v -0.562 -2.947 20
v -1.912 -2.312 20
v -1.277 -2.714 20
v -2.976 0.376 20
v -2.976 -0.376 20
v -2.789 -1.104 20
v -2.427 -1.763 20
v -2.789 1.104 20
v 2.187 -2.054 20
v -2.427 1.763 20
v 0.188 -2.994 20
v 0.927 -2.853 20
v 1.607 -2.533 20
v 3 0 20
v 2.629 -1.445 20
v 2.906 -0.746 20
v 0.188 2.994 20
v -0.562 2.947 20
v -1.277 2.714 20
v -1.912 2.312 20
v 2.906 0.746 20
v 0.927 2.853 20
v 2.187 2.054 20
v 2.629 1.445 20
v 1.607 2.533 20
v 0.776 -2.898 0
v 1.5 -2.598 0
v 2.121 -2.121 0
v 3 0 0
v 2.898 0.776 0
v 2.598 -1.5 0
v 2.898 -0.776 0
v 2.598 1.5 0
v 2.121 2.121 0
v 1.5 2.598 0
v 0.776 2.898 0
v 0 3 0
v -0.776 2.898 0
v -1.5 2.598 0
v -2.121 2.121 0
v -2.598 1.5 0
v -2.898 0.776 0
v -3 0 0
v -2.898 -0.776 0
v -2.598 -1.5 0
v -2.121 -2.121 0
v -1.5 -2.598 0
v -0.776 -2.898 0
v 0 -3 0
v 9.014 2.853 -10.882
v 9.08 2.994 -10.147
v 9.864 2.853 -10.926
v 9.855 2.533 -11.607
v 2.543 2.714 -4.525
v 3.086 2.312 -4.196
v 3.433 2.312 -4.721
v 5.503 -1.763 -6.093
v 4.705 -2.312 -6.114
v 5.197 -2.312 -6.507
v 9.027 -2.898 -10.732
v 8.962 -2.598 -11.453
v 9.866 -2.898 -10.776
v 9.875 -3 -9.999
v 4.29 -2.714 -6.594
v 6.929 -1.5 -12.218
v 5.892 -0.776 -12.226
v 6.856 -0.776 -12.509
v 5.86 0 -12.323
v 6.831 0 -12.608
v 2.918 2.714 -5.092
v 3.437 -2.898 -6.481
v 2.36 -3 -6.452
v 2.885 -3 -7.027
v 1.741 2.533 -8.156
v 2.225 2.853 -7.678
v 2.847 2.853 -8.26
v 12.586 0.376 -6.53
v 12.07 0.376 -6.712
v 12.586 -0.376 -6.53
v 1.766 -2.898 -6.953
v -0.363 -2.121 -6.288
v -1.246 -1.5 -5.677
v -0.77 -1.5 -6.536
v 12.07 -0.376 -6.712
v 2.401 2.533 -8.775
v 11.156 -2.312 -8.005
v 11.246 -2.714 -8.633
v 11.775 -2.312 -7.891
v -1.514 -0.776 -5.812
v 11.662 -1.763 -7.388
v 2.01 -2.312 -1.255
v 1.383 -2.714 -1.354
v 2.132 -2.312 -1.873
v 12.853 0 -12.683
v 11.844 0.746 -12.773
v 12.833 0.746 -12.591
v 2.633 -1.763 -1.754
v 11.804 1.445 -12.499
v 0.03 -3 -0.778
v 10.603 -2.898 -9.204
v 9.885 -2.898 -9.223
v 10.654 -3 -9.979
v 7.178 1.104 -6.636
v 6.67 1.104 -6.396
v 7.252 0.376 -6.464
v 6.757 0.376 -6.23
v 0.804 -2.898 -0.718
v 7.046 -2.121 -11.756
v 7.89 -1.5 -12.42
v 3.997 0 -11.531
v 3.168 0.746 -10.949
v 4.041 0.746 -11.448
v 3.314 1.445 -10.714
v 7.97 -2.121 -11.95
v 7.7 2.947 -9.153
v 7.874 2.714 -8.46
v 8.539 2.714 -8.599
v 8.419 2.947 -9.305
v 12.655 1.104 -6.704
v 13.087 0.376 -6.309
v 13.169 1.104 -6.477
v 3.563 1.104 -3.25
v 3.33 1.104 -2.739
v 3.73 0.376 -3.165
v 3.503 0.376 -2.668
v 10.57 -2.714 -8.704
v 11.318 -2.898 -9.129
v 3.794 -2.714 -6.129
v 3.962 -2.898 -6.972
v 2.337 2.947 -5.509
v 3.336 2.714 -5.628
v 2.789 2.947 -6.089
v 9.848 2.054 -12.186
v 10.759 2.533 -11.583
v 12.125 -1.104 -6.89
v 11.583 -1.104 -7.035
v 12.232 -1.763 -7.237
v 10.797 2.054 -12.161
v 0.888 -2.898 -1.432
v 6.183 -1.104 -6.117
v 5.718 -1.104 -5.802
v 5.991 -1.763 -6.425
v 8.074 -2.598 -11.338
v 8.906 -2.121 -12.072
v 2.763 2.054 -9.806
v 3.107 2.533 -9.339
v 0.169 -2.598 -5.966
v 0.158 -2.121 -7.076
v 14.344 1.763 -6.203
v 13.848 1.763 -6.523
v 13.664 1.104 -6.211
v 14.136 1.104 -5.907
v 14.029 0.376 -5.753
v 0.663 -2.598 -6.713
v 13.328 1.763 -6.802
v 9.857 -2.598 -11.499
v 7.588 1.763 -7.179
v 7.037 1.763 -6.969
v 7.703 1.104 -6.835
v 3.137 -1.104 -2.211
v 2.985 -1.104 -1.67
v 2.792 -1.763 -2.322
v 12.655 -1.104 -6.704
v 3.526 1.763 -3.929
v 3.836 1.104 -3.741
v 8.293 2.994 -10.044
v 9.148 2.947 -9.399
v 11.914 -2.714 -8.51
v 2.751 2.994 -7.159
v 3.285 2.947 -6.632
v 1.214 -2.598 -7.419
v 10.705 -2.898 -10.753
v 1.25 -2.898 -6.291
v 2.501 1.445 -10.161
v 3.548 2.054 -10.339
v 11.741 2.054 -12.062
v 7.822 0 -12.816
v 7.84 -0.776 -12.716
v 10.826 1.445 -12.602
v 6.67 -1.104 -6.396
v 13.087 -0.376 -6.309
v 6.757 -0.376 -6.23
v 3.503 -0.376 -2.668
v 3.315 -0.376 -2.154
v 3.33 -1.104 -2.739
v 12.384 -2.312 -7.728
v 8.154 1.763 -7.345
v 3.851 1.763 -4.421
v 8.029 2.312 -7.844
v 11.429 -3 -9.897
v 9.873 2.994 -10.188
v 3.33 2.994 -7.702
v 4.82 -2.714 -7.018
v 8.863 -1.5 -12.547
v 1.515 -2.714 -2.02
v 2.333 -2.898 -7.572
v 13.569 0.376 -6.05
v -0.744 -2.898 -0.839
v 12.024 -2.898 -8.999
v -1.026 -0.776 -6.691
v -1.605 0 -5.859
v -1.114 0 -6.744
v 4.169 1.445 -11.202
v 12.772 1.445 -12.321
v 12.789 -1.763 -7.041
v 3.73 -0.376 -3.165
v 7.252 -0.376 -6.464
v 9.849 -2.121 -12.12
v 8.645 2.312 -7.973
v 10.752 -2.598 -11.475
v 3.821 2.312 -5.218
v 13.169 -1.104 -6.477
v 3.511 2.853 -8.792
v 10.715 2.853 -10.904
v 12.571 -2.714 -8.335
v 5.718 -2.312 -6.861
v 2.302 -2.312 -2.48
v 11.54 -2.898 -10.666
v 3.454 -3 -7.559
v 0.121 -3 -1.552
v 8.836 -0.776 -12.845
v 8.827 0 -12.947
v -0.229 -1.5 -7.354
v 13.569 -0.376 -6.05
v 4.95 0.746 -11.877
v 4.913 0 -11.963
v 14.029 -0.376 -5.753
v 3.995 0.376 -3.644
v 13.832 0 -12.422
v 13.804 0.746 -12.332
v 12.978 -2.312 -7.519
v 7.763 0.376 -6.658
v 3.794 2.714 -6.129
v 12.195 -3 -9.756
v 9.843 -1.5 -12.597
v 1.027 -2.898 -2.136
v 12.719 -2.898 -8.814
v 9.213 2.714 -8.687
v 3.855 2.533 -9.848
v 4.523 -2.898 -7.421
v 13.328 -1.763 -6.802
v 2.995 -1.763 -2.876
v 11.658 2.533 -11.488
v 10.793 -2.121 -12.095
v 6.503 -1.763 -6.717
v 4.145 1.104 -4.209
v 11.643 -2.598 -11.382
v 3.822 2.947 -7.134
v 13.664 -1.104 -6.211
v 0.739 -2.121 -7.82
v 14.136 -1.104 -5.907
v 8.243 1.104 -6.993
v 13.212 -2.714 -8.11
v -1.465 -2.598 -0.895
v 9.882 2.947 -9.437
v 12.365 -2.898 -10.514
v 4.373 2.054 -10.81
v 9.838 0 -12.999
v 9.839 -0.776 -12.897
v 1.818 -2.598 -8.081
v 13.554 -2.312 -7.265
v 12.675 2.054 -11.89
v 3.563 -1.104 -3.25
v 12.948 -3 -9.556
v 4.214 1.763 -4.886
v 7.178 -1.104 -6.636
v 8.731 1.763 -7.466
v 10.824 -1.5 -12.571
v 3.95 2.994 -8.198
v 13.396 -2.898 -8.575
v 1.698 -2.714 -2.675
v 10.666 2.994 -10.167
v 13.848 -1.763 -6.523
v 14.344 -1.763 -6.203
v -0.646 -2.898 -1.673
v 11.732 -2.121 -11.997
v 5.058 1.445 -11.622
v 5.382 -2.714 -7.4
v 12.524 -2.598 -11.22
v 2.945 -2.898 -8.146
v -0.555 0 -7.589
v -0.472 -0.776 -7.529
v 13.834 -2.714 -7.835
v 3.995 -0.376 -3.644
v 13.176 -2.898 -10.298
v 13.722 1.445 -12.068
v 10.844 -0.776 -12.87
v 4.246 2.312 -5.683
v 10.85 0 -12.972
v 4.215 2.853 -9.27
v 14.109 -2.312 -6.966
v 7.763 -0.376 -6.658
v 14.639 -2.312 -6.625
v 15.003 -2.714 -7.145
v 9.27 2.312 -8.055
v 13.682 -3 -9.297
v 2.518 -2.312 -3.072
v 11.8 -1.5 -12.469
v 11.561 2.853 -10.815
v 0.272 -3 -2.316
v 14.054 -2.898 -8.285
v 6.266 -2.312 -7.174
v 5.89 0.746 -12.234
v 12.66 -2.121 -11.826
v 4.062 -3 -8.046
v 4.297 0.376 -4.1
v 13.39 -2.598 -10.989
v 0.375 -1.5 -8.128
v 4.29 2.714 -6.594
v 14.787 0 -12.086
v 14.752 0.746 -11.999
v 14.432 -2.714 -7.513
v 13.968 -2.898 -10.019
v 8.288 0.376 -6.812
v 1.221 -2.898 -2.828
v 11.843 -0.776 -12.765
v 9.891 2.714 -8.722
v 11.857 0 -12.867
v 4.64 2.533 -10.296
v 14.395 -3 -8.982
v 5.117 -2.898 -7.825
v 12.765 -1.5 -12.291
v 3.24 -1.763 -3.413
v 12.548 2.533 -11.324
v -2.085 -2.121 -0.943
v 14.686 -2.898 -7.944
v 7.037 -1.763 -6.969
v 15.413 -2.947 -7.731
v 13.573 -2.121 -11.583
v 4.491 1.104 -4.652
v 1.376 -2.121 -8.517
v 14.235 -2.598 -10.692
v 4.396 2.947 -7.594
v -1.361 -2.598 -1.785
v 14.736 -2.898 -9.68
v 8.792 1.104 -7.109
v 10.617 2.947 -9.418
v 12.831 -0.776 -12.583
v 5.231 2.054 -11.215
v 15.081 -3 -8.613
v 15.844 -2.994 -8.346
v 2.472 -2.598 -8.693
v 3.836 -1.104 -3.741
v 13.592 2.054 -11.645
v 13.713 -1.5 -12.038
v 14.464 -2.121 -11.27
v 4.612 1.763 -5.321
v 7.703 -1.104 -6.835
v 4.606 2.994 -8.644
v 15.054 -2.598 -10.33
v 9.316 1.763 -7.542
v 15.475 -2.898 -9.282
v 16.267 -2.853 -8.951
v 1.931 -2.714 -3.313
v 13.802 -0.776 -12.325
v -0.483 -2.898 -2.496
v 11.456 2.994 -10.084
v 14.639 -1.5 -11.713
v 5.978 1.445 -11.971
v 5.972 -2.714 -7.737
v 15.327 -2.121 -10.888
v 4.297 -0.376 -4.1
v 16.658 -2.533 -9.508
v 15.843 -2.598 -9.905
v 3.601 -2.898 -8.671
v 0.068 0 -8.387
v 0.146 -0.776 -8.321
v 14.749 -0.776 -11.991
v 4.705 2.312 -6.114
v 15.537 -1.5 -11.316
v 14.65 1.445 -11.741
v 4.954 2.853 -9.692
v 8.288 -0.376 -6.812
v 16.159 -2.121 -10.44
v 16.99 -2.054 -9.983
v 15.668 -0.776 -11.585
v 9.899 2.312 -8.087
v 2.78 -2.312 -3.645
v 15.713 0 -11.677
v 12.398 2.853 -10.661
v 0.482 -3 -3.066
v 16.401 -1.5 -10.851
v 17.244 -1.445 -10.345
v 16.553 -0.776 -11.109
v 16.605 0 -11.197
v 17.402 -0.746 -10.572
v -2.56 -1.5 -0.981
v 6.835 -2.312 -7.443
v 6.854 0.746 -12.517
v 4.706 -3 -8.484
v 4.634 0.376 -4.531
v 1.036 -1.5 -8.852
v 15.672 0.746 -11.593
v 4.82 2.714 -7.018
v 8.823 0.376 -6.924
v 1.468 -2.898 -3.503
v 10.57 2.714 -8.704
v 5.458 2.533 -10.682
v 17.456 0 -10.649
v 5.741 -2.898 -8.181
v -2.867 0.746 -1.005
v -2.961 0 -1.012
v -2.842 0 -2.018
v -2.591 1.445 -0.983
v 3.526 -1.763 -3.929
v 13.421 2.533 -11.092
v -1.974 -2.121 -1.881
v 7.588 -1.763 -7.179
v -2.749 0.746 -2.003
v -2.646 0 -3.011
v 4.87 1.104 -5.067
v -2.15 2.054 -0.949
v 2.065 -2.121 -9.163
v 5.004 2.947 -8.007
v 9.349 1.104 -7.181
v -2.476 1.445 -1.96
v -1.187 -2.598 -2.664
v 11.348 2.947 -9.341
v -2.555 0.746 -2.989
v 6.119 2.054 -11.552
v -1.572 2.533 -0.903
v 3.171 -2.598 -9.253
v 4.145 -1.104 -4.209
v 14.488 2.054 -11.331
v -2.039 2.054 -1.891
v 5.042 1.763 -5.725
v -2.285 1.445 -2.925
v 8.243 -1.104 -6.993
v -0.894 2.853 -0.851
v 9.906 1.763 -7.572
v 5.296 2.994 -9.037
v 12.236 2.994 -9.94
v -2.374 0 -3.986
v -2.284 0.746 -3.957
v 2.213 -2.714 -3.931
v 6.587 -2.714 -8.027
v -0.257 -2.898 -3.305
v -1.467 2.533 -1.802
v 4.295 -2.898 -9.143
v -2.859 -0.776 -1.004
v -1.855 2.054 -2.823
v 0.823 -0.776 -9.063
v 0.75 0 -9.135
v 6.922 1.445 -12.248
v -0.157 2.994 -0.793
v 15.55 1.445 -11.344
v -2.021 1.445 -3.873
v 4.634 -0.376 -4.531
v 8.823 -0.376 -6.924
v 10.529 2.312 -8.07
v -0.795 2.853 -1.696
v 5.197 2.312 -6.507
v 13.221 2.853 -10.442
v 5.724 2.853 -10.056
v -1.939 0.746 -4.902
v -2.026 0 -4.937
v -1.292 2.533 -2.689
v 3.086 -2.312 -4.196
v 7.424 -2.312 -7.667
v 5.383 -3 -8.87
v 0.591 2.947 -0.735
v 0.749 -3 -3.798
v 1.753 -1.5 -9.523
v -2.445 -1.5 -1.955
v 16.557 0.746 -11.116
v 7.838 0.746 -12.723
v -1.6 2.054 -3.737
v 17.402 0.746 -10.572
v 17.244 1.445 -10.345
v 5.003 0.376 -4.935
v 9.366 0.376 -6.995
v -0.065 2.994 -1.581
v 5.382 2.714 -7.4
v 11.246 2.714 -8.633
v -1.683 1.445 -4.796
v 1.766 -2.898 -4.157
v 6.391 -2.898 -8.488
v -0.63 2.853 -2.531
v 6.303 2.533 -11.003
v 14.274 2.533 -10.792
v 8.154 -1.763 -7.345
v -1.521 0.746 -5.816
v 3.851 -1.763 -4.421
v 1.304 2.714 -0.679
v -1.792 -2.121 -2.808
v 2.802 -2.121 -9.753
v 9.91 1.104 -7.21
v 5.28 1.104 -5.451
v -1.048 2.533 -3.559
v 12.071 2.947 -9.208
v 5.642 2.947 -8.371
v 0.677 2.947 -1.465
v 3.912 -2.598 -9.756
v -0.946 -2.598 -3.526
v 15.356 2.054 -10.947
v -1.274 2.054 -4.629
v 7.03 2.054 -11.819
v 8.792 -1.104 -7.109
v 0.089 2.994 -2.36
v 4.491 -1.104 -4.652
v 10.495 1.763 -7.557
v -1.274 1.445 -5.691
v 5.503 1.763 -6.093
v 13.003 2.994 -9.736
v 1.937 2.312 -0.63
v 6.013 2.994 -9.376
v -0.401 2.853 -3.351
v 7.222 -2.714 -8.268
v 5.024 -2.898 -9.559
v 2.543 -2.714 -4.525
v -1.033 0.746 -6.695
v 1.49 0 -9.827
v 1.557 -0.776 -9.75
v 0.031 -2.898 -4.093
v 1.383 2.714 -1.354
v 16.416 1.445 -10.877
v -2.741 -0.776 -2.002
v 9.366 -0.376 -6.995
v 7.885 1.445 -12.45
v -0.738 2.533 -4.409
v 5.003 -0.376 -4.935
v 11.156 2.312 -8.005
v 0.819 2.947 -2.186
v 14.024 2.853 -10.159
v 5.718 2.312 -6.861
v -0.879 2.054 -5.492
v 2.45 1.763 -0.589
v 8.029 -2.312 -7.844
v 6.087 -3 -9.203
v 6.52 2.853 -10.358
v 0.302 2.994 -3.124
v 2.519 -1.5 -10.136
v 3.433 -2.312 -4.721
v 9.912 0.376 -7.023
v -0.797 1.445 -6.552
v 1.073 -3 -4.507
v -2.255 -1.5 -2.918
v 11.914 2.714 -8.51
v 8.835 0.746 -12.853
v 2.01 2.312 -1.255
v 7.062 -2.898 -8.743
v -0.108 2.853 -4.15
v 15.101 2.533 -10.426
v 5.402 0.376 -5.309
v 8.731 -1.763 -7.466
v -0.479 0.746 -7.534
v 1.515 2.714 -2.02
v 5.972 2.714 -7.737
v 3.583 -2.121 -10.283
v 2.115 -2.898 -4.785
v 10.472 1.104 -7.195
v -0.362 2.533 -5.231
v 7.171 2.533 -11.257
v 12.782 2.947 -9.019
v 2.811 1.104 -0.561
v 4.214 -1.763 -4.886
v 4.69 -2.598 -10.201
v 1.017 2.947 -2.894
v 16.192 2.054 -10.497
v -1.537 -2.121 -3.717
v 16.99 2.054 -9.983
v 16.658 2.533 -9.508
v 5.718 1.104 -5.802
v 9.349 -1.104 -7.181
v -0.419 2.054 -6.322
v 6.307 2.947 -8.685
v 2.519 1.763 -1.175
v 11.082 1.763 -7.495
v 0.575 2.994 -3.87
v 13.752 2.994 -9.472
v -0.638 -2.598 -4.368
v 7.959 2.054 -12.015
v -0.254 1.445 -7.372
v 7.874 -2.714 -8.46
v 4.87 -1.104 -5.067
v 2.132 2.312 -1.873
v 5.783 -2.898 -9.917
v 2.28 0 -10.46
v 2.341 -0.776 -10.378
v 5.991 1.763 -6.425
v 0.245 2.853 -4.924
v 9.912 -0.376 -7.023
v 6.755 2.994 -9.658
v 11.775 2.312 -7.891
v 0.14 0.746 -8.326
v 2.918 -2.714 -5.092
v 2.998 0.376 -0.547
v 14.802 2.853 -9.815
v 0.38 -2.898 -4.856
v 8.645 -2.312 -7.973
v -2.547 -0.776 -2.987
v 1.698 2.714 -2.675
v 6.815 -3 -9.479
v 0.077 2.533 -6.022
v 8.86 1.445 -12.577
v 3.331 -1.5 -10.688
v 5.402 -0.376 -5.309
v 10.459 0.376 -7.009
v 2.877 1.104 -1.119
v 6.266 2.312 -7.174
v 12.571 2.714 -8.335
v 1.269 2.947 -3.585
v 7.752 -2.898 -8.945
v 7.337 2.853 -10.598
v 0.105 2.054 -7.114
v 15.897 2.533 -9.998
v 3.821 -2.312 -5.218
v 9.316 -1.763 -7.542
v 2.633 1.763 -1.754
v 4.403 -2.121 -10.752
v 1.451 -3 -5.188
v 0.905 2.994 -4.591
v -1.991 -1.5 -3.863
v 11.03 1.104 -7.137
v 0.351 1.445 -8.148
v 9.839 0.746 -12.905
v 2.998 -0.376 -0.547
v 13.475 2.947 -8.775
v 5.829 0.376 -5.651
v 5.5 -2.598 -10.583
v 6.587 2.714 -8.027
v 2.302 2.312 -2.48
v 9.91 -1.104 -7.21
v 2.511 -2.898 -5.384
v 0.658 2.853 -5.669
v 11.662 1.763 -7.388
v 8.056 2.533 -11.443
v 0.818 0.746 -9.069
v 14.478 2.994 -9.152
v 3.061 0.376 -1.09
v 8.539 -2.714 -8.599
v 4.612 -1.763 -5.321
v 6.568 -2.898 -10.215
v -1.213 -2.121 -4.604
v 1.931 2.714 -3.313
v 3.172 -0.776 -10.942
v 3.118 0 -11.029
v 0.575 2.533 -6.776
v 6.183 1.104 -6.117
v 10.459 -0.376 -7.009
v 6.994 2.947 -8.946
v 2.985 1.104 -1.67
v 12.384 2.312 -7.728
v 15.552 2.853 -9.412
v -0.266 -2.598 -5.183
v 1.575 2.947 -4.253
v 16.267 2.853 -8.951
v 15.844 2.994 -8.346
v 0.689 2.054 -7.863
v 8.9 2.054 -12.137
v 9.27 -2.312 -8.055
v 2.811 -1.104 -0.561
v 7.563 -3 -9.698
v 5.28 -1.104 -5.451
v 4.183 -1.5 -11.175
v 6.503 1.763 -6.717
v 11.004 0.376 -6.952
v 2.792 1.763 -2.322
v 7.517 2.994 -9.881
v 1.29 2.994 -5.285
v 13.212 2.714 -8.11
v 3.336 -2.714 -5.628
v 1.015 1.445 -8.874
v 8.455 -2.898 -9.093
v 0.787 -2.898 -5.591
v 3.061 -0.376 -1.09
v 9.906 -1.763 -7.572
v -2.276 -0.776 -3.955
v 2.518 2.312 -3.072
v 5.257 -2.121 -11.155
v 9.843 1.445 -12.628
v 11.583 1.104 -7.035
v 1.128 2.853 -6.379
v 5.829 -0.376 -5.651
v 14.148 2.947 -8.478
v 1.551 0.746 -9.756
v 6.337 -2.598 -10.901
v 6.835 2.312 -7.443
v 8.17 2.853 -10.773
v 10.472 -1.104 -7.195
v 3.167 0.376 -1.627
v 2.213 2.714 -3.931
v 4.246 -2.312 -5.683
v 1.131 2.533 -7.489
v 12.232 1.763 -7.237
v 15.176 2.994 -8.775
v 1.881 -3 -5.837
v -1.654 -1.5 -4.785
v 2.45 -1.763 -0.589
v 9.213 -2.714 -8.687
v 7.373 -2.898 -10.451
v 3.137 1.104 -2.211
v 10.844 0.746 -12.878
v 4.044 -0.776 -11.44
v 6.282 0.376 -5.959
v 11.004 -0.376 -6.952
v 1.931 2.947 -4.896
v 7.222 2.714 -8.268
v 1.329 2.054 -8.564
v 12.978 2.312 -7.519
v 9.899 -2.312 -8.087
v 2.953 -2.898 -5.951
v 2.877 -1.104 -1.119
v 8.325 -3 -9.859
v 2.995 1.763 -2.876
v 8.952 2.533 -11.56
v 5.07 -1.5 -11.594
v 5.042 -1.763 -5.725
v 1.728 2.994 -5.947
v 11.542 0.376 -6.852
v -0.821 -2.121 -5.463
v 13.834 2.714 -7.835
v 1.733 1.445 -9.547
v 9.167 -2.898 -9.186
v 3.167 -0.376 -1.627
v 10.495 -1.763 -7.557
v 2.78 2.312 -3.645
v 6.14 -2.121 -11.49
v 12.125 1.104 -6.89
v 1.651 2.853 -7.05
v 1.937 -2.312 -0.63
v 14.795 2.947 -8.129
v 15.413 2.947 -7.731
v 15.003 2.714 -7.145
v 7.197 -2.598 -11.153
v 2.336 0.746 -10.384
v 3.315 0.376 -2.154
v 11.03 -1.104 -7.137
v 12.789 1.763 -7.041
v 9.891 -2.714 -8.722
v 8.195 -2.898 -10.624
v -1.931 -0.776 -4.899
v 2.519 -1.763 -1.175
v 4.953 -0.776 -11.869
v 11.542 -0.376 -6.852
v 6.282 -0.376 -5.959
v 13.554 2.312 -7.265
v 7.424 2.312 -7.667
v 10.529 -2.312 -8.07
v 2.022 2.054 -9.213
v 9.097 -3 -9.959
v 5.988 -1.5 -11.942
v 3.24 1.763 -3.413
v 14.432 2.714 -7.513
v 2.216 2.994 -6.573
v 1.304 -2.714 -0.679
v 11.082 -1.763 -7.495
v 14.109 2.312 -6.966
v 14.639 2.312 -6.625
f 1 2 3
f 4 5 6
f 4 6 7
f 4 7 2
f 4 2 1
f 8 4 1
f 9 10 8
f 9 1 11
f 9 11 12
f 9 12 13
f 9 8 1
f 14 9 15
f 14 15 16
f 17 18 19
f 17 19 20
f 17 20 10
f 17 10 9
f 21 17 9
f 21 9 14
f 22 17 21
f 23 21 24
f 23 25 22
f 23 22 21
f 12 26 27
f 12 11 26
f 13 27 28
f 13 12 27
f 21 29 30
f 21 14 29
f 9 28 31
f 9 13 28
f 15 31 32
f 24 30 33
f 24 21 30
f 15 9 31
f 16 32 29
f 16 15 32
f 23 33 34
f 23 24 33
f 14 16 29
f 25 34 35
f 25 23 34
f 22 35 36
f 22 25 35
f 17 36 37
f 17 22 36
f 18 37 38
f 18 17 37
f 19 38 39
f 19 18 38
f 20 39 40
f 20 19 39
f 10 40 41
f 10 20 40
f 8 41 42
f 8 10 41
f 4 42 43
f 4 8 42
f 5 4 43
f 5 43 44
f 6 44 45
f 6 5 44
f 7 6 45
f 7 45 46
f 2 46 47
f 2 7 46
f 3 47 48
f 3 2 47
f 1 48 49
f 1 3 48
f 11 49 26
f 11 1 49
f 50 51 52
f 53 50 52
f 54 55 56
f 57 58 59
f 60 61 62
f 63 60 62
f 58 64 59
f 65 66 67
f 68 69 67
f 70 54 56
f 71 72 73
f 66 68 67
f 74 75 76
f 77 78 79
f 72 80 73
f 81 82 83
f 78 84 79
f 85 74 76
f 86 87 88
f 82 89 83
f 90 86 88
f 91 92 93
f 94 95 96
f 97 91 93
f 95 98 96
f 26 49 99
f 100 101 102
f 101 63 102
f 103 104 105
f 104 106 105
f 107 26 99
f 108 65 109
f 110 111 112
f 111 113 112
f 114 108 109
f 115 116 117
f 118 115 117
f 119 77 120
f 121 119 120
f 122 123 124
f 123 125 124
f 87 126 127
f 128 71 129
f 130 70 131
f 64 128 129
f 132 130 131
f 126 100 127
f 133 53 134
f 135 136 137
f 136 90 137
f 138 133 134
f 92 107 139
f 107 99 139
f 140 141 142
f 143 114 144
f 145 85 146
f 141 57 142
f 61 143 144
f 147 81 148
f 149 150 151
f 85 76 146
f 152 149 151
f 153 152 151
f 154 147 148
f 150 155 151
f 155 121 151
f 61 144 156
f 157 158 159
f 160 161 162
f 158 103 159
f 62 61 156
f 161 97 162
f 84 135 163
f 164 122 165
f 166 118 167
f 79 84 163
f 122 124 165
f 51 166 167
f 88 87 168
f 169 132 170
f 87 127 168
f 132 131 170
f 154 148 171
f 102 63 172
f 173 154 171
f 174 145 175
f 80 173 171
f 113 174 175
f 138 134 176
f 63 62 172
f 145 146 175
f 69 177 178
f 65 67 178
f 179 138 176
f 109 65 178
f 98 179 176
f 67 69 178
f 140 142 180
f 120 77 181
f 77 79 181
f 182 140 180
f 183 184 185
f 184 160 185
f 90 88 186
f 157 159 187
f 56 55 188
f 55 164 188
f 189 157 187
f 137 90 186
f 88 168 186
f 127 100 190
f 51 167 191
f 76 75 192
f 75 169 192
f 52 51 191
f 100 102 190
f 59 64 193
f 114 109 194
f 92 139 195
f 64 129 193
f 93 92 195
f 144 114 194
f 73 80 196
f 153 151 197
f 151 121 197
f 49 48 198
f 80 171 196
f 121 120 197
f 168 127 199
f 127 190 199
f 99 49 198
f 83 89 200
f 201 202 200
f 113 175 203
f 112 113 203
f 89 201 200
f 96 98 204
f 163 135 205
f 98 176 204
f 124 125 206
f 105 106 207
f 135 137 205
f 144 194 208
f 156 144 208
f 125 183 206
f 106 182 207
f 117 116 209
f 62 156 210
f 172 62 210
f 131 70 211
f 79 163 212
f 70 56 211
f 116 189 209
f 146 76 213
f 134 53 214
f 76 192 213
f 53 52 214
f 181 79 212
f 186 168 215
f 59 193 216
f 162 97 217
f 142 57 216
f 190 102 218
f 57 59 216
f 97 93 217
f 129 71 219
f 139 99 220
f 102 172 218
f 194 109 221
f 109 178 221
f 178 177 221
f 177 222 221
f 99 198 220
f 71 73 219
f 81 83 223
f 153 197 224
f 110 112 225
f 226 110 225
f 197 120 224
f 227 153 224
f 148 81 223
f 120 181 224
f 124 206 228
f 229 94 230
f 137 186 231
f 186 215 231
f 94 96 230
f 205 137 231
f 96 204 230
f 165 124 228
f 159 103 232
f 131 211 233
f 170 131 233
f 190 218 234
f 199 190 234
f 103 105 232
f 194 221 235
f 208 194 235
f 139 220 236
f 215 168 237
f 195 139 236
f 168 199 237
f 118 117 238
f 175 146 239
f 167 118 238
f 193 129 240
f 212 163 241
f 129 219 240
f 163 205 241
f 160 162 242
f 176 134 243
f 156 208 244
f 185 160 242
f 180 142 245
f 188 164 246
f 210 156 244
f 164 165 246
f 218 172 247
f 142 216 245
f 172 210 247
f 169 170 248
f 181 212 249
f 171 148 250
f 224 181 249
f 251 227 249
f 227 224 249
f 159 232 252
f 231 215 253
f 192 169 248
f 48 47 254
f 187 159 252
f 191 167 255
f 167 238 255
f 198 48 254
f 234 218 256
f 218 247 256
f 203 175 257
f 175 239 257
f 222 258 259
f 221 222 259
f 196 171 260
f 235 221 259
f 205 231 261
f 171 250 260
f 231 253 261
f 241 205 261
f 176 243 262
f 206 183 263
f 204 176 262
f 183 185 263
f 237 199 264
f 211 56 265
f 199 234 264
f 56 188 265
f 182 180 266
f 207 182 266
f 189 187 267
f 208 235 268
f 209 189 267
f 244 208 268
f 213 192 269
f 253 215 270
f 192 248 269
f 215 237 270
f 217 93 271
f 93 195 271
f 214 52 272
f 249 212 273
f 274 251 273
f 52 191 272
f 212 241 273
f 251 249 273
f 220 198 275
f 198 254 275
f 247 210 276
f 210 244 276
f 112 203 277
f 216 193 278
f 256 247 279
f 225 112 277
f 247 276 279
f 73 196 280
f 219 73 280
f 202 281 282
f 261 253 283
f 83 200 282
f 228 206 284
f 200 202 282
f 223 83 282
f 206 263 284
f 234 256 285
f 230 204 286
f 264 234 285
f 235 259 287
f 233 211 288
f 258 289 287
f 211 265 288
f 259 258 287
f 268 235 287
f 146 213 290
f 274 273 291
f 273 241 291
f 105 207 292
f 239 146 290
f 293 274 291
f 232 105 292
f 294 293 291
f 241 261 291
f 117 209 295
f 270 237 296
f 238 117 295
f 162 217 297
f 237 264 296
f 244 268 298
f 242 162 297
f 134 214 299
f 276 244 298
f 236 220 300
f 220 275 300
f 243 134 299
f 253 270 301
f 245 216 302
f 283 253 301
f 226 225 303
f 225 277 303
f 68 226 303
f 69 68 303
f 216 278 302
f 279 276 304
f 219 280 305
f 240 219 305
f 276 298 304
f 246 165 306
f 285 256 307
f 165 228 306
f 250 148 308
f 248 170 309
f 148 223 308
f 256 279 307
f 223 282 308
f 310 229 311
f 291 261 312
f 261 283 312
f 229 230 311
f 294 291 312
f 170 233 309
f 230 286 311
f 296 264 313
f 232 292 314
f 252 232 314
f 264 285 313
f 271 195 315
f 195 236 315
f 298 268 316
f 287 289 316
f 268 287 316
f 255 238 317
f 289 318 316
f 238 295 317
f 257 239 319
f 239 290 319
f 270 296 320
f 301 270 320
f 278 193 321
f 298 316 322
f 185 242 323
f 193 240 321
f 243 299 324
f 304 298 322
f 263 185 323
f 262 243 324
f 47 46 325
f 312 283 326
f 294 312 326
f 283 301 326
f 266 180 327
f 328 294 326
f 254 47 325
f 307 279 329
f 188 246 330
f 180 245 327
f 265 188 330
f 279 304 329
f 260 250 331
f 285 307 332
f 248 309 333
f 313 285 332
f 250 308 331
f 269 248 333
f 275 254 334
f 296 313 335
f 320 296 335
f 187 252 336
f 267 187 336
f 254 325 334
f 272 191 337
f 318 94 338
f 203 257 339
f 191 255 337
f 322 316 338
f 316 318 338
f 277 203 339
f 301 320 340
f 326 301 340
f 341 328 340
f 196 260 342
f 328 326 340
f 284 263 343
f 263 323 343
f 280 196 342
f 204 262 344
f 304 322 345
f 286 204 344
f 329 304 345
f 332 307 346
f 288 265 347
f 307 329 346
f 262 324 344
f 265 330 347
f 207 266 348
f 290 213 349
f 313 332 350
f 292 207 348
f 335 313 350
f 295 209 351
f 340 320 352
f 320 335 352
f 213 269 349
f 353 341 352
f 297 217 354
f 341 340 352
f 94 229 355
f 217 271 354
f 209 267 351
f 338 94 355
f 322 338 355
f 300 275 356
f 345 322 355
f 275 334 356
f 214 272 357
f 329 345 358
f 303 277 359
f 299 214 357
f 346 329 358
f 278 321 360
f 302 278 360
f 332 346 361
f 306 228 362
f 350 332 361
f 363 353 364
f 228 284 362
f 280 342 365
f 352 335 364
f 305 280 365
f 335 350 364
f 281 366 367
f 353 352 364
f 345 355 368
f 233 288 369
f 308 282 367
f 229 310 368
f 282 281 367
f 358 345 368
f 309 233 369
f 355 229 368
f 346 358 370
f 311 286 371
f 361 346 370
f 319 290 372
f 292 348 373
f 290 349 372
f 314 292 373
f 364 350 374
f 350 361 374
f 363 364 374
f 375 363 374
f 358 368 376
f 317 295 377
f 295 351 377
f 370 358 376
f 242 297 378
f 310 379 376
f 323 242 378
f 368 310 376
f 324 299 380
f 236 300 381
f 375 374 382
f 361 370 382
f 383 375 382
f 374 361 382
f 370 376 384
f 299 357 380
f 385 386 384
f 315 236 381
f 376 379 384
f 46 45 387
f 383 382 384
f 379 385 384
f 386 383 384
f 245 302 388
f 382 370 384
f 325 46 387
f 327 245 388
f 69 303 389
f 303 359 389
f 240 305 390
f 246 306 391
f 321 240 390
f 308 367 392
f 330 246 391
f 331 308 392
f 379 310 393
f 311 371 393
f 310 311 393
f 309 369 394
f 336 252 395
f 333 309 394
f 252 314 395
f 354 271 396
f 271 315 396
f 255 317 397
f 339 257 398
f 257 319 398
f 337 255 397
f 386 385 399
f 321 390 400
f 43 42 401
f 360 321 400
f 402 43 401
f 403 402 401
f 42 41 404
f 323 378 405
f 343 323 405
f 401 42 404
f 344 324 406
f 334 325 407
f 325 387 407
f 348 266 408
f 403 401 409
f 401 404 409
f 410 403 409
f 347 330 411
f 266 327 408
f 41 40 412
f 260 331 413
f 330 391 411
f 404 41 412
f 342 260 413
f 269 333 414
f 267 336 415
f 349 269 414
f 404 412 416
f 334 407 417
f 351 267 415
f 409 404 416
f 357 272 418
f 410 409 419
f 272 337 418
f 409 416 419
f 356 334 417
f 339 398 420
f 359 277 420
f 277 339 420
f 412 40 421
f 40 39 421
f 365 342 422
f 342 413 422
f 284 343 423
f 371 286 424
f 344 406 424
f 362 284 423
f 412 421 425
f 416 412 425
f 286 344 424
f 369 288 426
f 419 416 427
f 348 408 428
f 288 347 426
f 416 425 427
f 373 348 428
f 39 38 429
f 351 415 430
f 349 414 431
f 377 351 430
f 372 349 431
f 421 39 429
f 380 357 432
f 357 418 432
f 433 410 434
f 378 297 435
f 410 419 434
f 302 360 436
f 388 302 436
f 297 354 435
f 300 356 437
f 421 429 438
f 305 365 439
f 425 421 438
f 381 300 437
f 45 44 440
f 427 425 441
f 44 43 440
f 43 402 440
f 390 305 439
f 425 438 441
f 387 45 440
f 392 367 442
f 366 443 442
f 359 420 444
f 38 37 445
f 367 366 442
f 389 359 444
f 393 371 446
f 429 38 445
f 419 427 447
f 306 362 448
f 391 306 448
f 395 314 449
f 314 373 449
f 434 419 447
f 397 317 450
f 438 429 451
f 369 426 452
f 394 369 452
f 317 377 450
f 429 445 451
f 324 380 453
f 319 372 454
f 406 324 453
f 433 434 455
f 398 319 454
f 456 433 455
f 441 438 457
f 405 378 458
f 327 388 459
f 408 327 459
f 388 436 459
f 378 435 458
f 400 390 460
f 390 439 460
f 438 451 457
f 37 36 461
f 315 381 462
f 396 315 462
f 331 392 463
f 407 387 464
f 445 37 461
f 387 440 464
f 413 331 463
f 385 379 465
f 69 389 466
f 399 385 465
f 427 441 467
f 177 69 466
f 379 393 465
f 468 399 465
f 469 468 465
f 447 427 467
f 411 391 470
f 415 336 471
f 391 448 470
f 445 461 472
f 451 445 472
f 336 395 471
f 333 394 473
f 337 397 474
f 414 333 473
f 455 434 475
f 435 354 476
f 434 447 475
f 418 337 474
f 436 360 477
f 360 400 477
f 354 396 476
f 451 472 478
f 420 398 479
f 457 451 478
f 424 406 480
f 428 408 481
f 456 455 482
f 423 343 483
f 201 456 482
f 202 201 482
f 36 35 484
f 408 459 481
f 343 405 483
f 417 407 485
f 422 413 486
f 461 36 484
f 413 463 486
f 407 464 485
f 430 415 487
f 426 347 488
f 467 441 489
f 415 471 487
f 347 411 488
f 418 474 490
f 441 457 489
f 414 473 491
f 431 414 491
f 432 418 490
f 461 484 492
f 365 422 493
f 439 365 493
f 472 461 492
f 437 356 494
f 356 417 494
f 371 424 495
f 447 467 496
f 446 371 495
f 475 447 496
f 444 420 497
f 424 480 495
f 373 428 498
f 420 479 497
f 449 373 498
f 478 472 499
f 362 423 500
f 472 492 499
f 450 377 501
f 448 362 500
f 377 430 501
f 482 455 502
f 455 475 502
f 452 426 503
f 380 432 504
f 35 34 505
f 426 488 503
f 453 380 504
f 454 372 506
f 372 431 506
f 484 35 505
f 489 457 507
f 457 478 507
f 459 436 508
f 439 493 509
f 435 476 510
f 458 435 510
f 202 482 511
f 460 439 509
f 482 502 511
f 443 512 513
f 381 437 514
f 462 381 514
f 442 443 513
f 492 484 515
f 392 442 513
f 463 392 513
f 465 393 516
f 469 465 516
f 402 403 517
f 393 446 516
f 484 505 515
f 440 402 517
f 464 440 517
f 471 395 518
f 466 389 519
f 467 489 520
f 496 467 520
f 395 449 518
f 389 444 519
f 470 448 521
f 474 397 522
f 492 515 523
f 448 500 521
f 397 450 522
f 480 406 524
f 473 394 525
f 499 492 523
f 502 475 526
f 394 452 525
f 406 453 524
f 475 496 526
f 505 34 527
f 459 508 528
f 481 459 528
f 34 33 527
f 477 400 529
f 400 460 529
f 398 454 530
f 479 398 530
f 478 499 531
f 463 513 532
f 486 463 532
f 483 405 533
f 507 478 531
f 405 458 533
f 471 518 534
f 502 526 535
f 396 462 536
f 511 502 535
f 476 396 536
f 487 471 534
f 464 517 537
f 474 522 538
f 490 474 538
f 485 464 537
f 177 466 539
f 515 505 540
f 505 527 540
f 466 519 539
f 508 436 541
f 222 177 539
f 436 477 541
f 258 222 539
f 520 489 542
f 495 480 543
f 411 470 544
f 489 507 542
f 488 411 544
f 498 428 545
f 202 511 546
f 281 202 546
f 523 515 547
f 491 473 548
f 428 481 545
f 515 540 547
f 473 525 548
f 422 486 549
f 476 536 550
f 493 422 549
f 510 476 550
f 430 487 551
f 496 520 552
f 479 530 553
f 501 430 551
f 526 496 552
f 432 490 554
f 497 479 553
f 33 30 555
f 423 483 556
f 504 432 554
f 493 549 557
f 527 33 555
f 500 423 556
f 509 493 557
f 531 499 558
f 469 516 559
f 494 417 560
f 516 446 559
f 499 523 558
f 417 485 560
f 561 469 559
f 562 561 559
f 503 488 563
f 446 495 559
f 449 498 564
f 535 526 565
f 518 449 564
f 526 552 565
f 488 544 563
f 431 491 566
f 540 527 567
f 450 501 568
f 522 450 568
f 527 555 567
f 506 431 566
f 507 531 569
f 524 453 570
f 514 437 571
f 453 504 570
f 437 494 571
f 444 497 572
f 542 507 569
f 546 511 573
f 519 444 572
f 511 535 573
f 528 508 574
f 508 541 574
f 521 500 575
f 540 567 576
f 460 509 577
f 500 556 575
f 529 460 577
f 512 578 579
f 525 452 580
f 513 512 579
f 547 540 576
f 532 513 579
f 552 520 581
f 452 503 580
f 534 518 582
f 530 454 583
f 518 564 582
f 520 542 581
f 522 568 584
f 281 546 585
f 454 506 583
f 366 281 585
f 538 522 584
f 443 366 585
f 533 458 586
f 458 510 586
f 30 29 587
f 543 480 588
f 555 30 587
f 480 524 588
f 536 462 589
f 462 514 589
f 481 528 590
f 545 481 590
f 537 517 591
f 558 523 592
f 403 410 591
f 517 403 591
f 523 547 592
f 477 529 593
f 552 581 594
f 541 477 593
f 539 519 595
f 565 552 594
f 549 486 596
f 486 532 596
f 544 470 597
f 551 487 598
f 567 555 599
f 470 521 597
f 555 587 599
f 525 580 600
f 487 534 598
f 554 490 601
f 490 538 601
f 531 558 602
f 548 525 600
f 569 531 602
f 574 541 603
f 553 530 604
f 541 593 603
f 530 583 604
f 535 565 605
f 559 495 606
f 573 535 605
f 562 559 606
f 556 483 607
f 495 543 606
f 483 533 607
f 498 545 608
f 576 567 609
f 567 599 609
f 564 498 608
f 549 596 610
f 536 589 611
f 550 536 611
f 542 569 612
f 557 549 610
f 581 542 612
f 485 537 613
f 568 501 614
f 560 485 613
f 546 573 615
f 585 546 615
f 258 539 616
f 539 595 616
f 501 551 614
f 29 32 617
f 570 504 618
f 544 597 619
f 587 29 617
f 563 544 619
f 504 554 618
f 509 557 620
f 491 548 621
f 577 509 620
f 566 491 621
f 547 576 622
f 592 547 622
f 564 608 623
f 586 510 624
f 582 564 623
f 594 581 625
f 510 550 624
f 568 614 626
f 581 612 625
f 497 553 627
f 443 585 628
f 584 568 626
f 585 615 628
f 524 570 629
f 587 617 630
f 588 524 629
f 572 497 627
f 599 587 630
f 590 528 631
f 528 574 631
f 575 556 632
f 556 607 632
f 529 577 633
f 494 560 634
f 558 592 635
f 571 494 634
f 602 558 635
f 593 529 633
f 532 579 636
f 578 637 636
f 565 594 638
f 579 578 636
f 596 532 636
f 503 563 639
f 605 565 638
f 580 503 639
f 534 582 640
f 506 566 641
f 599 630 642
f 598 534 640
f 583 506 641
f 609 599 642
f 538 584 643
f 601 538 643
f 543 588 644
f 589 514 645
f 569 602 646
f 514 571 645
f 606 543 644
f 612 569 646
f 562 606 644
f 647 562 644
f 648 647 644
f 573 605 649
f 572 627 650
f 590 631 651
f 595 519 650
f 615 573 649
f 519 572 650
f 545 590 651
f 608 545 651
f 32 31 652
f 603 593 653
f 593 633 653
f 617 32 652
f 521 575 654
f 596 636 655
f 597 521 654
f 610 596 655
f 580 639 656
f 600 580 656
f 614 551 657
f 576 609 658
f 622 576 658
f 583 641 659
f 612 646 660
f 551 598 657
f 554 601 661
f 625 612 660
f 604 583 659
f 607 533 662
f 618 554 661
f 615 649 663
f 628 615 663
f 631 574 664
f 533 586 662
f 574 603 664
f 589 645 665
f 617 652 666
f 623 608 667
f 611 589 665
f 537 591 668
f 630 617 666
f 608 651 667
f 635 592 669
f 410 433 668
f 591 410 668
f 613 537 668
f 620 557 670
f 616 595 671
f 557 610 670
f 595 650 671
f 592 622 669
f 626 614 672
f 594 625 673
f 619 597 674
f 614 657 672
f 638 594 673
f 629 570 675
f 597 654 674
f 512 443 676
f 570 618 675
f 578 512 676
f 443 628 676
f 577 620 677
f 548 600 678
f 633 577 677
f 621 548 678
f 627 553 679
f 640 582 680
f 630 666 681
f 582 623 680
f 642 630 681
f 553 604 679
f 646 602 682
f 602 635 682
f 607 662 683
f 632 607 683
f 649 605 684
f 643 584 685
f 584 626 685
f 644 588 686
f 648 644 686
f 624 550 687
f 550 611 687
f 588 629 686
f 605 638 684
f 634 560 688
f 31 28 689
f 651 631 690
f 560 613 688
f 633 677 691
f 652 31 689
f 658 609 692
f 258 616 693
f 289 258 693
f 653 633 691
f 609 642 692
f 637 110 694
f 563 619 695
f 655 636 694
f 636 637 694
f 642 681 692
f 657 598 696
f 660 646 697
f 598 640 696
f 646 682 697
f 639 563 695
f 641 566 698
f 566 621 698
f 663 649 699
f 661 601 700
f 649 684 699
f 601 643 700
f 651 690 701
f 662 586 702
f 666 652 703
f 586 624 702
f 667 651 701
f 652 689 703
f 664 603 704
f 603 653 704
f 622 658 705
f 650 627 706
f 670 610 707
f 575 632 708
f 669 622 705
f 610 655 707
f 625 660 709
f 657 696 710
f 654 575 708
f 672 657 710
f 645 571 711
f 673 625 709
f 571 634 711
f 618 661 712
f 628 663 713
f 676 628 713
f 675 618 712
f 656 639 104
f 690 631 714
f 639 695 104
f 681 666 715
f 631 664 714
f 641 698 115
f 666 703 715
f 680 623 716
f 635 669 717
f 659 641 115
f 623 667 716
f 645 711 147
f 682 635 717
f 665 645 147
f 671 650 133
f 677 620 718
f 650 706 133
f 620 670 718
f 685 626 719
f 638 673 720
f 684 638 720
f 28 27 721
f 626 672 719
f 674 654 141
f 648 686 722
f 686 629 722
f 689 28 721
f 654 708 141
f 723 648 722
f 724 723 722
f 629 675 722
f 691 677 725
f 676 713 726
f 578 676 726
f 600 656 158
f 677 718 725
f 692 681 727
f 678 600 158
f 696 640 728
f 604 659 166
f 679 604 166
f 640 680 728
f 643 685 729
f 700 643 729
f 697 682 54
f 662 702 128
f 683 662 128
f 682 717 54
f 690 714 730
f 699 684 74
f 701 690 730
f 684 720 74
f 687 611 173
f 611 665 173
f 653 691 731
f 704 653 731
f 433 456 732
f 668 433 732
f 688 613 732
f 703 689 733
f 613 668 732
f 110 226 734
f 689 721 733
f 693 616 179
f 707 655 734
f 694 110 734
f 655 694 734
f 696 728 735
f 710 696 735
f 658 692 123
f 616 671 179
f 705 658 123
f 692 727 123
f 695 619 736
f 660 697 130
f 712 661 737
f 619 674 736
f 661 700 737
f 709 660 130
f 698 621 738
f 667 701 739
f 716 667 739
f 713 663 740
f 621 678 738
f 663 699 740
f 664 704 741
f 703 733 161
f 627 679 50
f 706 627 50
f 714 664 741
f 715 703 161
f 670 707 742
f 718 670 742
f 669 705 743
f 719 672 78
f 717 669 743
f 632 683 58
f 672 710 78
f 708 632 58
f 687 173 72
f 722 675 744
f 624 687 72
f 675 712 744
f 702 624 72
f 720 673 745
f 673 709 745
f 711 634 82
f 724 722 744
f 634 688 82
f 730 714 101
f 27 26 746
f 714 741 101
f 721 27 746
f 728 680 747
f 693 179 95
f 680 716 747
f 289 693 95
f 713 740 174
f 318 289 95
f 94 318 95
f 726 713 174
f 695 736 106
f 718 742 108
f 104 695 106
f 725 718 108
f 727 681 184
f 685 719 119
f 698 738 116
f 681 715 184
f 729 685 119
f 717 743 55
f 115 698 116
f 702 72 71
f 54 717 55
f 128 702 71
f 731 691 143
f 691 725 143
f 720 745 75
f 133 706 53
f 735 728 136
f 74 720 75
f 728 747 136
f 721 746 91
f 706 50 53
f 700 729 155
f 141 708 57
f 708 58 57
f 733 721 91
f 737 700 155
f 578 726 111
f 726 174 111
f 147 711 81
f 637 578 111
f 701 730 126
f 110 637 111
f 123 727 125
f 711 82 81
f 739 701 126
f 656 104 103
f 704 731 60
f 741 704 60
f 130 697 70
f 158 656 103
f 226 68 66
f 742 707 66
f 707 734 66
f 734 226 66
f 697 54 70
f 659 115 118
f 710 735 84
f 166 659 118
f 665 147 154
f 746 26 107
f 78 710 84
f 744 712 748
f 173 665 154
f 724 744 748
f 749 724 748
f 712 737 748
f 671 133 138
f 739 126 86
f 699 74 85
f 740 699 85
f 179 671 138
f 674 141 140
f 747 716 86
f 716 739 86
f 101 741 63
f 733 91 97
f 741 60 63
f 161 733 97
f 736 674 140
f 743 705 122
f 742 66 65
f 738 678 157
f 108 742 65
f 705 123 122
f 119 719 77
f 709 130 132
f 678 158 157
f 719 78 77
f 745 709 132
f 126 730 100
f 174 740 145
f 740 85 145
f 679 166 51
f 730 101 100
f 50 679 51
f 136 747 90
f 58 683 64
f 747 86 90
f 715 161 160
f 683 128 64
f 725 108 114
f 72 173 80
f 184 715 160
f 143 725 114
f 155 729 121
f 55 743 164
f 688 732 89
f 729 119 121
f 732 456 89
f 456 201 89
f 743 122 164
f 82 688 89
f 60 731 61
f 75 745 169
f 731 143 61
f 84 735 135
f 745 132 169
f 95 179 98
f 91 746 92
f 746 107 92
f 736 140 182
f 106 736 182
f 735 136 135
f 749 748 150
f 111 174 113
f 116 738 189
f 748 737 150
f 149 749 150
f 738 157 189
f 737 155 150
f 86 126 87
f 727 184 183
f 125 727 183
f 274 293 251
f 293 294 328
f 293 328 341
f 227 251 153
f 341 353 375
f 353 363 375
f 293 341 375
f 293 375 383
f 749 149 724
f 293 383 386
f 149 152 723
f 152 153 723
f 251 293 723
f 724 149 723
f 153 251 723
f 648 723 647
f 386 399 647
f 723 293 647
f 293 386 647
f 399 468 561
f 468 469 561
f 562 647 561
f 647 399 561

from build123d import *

# Parameters (mm, degrees)
TORUS_R               = 3
TORUS_ANGLE           = 125
TORUS_ROLL_ANGLE      = -90
TORUS_PLACEMENT_ANGLE = 180
CYLINDER_R            = 3
CYLINDER_DEPTH        = 20


with BuildPart() as torus:
    # Torus → Torus (revolve)
    with BuildSketch(Plane.XZ):
        with Locations((10, 0)):
            Circle(TORUS_R)
    revolve(axis=Axis((0, 0, 0), (0, 0, 1)), revolution_arc=TORUS_ANGLE)


with BuildPart() as torus_1:
    # Torus roll: moved
    add(torus.part.rotate(Axis((0, 0, 0), (1, 0, 0)), TORUS_ROLL_ANGLE))


with BuildPart() as torus_2:
    # Torus placement: moved
    add(torus_1.part.moved(Location((10, 0, 0))).rotate(Axis((10, 0, 0), (0, 0, 1)), TORUS_PLACEMENT_ANGLE))


with BuildPart() as fusion:
    # Cylinder → Cylinder (new body)
    with BuildSketch(Plane.XY):
        Circle(CYLINDER_R)
    extrude(amount=CYLINDER_DEPTH)

    # Fusion: union Torus
    add(torus_2.part)


solid = fusion.part
